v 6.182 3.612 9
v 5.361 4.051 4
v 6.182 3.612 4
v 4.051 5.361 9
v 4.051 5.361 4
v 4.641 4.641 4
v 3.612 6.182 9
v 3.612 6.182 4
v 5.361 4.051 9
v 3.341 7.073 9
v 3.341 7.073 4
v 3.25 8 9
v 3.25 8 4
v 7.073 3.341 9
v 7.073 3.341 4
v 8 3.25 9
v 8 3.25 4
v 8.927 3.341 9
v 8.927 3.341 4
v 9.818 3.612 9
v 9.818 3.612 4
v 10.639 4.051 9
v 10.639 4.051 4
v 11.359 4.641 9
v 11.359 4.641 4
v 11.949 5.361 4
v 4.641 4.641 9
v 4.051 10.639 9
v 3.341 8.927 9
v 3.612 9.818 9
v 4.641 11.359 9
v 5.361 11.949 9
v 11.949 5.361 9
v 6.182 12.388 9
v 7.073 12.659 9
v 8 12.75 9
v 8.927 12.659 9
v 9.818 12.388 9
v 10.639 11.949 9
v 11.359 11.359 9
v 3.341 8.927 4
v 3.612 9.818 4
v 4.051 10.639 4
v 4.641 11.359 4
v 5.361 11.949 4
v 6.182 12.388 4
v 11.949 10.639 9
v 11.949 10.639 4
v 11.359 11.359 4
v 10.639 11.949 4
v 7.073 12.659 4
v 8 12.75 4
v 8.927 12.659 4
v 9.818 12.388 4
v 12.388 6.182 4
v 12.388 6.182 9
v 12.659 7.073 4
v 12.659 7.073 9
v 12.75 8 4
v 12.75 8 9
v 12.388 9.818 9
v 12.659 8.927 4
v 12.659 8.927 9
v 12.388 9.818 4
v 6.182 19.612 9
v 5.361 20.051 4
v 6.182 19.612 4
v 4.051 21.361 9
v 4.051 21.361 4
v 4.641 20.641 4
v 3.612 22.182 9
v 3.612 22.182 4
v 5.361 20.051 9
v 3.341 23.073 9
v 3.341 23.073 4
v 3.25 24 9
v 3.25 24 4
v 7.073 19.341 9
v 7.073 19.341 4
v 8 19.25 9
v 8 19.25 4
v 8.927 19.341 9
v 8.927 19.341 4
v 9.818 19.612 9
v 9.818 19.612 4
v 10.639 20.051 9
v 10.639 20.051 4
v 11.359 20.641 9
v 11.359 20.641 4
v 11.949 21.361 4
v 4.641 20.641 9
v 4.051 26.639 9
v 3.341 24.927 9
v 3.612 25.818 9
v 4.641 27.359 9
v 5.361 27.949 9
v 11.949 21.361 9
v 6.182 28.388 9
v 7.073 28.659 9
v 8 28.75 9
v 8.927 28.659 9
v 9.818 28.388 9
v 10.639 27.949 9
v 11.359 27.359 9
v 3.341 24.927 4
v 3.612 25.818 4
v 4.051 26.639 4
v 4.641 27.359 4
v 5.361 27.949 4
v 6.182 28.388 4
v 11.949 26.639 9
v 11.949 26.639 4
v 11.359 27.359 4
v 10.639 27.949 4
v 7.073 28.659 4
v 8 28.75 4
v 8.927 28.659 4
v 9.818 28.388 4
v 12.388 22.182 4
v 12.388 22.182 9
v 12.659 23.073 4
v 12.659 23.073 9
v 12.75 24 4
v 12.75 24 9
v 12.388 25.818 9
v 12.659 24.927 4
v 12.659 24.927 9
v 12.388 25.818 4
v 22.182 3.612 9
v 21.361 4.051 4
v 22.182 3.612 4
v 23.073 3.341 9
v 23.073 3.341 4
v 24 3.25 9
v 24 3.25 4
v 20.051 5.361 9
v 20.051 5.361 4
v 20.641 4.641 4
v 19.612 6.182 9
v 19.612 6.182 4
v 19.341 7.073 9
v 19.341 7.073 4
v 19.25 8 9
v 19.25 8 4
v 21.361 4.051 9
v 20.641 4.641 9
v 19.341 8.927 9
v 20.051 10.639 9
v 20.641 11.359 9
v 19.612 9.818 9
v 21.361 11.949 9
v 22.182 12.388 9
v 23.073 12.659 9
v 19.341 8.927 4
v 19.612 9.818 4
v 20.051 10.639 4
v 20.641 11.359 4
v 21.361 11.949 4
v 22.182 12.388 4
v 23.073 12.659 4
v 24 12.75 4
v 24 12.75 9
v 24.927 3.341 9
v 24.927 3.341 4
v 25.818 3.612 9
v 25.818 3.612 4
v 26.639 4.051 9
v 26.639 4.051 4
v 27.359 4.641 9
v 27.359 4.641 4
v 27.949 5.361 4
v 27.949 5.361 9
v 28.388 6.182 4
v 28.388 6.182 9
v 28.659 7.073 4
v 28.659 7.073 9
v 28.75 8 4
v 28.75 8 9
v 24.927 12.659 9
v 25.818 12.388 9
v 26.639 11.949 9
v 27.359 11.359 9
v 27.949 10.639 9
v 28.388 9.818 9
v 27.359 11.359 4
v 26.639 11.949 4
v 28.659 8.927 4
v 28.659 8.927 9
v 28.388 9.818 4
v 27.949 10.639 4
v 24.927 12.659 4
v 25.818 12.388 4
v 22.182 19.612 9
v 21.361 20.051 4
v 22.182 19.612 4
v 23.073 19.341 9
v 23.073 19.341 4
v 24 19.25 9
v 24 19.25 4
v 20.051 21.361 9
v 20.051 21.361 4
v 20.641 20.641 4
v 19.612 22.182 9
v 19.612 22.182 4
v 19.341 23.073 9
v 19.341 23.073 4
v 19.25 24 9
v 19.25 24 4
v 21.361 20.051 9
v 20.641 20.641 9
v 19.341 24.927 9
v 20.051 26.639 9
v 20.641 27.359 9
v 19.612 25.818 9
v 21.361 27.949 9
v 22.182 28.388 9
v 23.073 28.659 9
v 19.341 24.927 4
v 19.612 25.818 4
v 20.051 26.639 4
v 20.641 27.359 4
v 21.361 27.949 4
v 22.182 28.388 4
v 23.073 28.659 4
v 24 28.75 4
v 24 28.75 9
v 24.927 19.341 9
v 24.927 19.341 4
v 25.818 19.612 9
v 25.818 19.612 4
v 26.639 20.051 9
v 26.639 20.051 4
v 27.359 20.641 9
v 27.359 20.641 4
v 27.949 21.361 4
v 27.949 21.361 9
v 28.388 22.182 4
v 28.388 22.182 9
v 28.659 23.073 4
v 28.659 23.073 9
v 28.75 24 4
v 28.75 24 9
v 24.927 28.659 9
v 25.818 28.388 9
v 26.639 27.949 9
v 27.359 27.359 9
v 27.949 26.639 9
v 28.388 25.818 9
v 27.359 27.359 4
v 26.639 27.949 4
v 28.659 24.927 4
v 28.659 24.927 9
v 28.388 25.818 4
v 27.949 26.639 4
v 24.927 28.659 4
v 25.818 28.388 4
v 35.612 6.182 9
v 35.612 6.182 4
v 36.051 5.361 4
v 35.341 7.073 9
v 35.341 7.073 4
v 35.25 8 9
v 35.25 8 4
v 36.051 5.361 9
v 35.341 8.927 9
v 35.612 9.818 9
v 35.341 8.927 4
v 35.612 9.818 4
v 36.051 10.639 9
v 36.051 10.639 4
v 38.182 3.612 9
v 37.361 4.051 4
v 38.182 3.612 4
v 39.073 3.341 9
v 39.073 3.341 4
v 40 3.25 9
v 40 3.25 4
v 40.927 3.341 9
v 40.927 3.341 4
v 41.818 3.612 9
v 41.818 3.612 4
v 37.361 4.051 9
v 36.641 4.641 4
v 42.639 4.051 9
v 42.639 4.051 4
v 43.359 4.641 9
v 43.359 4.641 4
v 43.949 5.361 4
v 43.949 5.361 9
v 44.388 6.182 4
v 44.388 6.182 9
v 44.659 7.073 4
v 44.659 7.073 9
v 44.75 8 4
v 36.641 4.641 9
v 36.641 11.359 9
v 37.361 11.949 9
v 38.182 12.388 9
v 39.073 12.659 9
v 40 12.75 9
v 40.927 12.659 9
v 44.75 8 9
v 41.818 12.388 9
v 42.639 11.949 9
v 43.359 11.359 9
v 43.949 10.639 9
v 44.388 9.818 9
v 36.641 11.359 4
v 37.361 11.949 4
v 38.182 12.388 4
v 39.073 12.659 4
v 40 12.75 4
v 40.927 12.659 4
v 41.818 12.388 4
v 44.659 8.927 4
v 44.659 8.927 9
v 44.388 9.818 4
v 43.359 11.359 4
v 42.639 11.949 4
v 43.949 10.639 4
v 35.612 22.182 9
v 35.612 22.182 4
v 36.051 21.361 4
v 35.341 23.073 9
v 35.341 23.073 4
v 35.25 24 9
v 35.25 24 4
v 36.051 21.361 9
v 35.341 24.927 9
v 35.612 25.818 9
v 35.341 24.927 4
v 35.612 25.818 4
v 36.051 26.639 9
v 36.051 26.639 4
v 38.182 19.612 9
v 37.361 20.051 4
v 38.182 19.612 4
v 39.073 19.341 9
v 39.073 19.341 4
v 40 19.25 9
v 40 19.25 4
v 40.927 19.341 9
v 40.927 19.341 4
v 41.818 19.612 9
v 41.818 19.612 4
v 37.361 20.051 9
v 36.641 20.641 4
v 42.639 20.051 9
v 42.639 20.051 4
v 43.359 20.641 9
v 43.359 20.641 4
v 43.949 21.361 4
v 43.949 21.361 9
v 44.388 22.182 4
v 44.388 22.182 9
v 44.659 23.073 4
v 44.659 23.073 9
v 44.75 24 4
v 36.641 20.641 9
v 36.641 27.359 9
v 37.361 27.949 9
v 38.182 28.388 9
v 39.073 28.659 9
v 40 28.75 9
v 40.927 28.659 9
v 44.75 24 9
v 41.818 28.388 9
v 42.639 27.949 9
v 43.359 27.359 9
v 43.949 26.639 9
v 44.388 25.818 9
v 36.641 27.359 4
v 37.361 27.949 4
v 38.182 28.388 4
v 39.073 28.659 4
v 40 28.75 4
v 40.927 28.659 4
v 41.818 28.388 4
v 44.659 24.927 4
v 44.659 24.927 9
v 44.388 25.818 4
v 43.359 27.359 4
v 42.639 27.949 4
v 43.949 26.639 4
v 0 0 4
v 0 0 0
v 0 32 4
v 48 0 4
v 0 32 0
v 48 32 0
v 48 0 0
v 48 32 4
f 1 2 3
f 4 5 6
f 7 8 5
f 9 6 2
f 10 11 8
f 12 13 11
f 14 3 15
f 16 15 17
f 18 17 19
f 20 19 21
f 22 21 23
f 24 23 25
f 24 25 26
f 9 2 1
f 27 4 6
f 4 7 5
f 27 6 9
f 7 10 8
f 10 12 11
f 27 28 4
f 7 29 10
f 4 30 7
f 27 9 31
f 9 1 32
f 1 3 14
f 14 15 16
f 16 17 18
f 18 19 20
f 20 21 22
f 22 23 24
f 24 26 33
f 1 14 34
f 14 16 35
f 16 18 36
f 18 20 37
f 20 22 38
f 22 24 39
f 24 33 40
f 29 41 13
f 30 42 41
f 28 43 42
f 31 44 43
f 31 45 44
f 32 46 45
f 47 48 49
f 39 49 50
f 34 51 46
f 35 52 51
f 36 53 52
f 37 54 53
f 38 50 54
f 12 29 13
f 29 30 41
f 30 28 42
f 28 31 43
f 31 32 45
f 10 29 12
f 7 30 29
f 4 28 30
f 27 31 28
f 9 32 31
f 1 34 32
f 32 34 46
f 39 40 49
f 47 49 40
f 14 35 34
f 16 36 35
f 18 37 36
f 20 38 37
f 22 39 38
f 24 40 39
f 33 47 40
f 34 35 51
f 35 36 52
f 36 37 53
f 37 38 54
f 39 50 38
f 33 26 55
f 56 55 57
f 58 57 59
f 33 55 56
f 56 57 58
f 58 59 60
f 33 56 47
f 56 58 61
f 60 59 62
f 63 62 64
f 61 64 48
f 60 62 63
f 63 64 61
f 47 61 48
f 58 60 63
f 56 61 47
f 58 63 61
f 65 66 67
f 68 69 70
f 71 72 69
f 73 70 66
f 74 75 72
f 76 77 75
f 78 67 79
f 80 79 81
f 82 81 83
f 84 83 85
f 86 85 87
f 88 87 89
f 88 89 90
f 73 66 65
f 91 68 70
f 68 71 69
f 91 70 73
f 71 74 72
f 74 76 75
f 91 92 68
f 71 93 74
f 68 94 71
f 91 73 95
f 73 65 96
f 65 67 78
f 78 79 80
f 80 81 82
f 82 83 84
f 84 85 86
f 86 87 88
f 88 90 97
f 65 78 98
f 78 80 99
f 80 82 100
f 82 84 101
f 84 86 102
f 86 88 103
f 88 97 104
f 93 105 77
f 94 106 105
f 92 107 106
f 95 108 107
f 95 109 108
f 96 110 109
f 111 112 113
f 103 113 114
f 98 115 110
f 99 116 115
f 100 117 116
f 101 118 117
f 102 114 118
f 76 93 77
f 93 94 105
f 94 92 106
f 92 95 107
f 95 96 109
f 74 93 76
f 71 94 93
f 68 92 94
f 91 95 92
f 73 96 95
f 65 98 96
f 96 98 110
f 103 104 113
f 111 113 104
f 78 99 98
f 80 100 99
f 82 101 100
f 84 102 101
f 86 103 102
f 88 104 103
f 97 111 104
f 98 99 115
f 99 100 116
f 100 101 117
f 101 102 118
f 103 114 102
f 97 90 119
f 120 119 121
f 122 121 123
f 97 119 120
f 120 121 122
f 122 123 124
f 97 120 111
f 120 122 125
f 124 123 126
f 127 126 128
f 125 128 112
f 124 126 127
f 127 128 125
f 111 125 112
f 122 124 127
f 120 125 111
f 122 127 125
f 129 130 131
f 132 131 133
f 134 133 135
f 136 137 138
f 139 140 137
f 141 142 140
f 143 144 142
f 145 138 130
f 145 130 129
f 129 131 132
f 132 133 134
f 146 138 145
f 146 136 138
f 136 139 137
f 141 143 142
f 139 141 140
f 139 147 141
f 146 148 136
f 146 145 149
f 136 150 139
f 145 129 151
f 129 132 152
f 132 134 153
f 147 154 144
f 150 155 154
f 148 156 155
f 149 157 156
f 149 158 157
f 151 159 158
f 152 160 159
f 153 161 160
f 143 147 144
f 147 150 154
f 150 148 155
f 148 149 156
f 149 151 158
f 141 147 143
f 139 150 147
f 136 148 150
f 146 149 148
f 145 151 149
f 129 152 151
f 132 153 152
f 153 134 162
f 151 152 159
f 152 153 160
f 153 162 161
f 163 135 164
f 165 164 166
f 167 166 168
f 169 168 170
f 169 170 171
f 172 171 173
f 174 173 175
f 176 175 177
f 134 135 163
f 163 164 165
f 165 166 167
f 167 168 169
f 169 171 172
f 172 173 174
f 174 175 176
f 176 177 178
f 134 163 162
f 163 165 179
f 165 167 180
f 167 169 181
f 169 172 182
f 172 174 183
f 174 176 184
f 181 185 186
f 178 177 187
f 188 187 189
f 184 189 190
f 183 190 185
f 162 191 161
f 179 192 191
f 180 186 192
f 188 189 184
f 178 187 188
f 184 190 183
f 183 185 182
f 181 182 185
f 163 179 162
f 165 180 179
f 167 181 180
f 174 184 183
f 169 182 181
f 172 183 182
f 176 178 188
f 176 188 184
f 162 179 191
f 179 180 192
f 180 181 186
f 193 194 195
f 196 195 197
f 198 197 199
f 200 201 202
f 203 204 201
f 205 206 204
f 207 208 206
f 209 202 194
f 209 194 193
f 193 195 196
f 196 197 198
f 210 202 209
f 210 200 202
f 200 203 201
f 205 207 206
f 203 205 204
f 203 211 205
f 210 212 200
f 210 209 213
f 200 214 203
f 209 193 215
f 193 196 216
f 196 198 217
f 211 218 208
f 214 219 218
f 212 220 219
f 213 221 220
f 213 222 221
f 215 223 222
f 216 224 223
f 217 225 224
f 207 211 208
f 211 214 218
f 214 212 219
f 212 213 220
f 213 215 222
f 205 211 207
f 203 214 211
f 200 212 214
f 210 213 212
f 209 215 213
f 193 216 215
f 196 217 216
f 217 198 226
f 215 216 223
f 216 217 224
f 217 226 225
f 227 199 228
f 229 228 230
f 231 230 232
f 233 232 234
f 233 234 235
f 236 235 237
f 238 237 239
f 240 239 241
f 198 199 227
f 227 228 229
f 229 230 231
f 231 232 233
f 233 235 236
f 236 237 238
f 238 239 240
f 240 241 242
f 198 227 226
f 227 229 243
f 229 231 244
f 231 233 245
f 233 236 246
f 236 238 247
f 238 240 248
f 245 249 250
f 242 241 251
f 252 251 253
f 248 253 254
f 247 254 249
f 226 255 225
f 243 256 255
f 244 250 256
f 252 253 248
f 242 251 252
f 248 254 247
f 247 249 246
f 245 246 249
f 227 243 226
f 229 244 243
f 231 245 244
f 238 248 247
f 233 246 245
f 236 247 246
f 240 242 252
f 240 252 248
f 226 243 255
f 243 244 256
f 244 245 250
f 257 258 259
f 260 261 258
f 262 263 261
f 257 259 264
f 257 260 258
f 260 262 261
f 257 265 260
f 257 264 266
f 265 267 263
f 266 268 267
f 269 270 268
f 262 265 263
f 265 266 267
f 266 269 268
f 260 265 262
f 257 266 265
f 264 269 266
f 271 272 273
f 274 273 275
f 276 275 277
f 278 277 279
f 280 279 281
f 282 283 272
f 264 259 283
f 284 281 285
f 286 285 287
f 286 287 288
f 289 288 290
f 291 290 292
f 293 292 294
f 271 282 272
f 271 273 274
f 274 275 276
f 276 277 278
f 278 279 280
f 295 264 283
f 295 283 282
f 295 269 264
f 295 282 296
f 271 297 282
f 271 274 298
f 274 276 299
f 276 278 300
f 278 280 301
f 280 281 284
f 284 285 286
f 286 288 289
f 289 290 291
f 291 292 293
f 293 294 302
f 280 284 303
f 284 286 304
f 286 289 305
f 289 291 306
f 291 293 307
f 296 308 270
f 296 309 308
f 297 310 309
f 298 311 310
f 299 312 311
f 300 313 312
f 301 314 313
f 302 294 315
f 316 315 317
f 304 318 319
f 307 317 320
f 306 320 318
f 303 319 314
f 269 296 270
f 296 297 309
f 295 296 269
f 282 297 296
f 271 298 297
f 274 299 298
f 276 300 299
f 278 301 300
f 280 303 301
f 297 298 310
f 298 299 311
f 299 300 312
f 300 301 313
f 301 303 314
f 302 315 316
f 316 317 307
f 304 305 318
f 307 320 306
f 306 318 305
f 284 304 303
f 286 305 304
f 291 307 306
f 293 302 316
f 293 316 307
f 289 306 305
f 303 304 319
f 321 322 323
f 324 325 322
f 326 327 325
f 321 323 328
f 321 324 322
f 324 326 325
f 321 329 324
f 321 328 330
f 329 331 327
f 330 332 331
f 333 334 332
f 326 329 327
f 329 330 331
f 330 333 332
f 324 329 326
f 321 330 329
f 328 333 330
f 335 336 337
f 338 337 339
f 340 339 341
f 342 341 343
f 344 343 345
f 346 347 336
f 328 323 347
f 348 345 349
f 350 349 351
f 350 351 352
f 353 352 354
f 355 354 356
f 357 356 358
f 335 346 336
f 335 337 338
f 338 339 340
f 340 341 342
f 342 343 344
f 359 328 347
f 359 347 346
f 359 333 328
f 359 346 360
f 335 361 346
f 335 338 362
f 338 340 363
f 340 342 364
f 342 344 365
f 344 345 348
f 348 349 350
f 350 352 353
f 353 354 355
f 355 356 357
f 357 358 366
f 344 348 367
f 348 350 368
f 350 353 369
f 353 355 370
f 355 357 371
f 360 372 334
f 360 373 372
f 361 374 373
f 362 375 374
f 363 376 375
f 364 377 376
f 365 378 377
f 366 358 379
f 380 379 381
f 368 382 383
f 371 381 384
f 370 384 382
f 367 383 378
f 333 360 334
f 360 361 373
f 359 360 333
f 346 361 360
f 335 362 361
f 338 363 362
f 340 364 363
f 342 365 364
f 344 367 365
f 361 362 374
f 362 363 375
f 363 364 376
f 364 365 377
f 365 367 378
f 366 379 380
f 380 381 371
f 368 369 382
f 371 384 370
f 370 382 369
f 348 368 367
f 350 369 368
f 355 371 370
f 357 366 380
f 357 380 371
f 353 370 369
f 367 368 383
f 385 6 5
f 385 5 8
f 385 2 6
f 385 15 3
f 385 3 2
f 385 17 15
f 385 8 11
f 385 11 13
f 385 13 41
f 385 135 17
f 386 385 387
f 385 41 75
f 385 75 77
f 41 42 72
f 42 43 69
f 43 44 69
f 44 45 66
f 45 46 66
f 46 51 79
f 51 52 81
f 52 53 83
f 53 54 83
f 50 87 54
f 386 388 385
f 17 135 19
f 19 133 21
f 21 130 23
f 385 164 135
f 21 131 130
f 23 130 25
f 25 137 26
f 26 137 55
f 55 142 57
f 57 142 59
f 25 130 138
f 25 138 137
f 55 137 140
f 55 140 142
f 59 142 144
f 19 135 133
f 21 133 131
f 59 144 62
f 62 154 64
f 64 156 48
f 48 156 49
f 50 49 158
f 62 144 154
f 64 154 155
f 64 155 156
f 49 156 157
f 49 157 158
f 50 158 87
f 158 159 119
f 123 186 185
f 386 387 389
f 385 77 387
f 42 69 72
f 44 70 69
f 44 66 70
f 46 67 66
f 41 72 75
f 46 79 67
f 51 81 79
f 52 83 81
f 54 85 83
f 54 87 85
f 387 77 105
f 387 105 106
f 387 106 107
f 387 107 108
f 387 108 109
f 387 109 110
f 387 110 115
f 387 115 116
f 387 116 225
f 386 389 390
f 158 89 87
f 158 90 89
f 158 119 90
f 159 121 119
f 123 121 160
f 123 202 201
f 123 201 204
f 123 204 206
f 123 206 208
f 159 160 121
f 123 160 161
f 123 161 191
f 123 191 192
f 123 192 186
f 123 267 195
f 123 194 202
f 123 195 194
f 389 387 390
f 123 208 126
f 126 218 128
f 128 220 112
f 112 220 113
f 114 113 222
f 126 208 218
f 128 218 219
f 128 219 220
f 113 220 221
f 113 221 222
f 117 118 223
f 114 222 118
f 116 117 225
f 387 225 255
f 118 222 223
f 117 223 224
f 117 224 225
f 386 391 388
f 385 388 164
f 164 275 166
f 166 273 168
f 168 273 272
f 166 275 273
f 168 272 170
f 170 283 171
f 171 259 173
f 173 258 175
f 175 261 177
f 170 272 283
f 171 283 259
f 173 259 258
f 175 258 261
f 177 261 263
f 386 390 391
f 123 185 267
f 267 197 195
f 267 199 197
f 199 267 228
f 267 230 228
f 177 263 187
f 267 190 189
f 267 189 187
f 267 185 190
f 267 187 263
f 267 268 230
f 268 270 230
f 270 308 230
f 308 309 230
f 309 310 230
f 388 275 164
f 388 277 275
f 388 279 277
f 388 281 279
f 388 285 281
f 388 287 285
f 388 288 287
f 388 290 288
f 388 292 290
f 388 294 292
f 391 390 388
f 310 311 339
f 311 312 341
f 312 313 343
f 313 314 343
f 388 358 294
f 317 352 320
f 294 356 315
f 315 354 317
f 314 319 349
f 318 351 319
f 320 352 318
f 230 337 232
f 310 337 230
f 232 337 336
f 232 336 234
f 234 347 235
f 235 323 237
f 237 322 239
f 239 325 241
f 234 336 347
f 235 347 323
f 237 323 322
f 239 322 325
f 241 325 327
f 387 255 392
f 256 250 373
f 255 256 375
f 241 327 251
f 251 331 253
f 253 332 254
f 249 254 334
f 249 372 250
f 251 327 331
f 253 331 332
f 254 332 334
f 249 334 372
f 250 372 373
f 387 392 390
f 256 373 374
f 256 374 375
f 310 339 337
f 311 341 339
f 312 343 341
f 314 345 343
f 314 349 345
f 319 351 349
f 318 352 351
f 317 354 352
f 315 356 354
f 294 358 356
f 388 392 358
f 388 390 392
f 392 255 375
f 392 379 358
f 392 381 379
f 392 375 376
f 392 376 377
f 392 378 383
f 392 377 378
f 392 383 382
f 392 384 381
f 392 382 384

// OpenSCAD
// file: ../profiles/stud_profile_small.scad
// stud_profile_small — TARGET values only. Nothing in Snap has been printed
// yet (Oct 27, 2026); clearance locks after the Day 4 calibration prints.
stud_pitch_mm = 16;
stud_diameter_mm = 9.5;
stud_height_mm = 5;
plate_height_mm = 4;

module stud() {
  cylinder(d = stud_diameter_mm, h = stud_height_mm, $fn = 32);
}

module stud_plate(units_x, units_y) {
  cube([units_x * stud_pitch_mm, units_y * stud_pitch_mm, plate_height_mm]);
  for (x = [0 : units_x - 1])
    for (y = [0 : units_y - 1])
      translate([(x + 0.5) * stud_pitch_mm, (y + 0.5) * stud_pitch_mm, plate_height_mm])
        stud();
}

// --- Snap-fit undersides (added for the first sample parts) ---
// TARGET clearance only, same status as the stud numbers above: the
// calibration piece sweeps -0.2..+0.2 mm, so parts start at the loose end
// (+0.2) and this one number moves once a printer says otherwise.
snap_clearance_mm = 0.2;
socket_depth_mm = 4; // engages 4 of the 5 mm stud; rest is finger room

// Recess that snaps over one stud. The 45-degree cone roof means the
// recess never needs a flat bridge, so undersides stay support-free
// printed studs-up on the bed.
module socket() {
  d = stud_diameter_mm + snap_clearance_mm;
  union() {
    cylinder(d = d, h = socket_depth_mm, $fn = 32);
    translate([0, 0, socket_depth_mm])
      cylinder(d1 = d, d2 = 3, h = (d - 3) / 2, $fn = 32);
  }
}

// Compliant socket: same cavity plus a lead-in taper and four relief
// slots, so the socket rim can flex over a small range of stud sizes
// instead of depending on one exact clearance. Used by the first-print
// fit selector; clearance is explicit per socket so one plate can carry
// snug / standard / easy variants side by side.
module compliant_socket(clearance_mm) {
  d = stud_diameter_mm + clearance_mm;
  union() {
    // Lead-in: wider mouth for the first millimetre, then the grip bore.
    // Total depth matches socket() so plates sized for it still work.
    cylinder(d1 = d + 0.8, d2 = d, h = 1, $fn = 32);
    translate([0, 0, 1]) cylinder(d = d, h = socket_depth_mm - 1, $fn = 32);
    translate([0, 0, socket_depth_mm])
      cylinder(d1 = d, d2 = 3, h = (d - 3) / 2, $fn = 32);
    // Relief slots through the grip depth: the remaining bridges flex.
    for (angle = [0, 90, 180, 270])
      rotate([0, 0, angle])
        translate([0, -0.6, -0.1])
          cube([d / 2 + 2.5, 1.2, socket_depth_mm + 0.1]);
  }
}

// Plate with rounded vertical edges and a rolled top edge, flat bottom
// for bed adhesion (docs/snap.md: rounded edges, no sharp corners).
module rounded_plate(units_x, units_y, h, r = 2) {
  w = units_x * stud_pitch_mm;
  d = units_y * stud_pitch_mm;
  hull() {
    for (x = [r, w - r])
      for (y = [r, d - r]) {
        translate([x, y, 0]) cylinder(r = r, h = h - r, $fn = 24);
        translate([x, y, h - r]) sphere(r = r, $fn = 24);
      }
  }
}

// Rounded plate with a snap socket under every grid cell. Needs
// h > socket_depth + cone roof (about 7.4 mm here); samples use 8+.
module socket_plate(units_x, units_y, h, r = 2) {
  difference() {
    rounded_plate(units_x, units_y, h, r);
    for (x = [0 : units_x - 1])
      for (y = [0 : units_y - 1])
        translate([(x + 0.5) * stud_pitch_mm, (y + 0.5) * stud_pitch_mm, -0.1])
          socket();
  }
}

// Studs standing on a plate top at height h, with a small cone fillet
// at each base so studs survive being pulled sideways by small hands.
// Sunk 0.5 mm into the plate: studs that merely touch the top face
// stay separate shells in the STL instead of one watertight solid.
module top_studs(units_x, units_y, h) {
  for (x = [0 : units_x - 1])
    for (y = [0 : units_y - 1])
      translate([(x + 0.5) * stud_pitch_mm, (y + 0.5) * stud_pitch_mm, h - 0.5]) {
        cylinder(d1 = stud_diameter_mm + 2, d2 = stud_diameter_mm, h = 1.5, $fn = 32);
        translate([0, 0, 1.5]) stud();
      }
}
// main file
// forge-mount-small — adapter plate that gives a scanned toy a stud grid.
// Matches sets/base.json (48x32 mm footprint, 3x2 stud units, flat).
include <../profiles/stud_profile_small.scad>;
stud_plate(3, 2);
